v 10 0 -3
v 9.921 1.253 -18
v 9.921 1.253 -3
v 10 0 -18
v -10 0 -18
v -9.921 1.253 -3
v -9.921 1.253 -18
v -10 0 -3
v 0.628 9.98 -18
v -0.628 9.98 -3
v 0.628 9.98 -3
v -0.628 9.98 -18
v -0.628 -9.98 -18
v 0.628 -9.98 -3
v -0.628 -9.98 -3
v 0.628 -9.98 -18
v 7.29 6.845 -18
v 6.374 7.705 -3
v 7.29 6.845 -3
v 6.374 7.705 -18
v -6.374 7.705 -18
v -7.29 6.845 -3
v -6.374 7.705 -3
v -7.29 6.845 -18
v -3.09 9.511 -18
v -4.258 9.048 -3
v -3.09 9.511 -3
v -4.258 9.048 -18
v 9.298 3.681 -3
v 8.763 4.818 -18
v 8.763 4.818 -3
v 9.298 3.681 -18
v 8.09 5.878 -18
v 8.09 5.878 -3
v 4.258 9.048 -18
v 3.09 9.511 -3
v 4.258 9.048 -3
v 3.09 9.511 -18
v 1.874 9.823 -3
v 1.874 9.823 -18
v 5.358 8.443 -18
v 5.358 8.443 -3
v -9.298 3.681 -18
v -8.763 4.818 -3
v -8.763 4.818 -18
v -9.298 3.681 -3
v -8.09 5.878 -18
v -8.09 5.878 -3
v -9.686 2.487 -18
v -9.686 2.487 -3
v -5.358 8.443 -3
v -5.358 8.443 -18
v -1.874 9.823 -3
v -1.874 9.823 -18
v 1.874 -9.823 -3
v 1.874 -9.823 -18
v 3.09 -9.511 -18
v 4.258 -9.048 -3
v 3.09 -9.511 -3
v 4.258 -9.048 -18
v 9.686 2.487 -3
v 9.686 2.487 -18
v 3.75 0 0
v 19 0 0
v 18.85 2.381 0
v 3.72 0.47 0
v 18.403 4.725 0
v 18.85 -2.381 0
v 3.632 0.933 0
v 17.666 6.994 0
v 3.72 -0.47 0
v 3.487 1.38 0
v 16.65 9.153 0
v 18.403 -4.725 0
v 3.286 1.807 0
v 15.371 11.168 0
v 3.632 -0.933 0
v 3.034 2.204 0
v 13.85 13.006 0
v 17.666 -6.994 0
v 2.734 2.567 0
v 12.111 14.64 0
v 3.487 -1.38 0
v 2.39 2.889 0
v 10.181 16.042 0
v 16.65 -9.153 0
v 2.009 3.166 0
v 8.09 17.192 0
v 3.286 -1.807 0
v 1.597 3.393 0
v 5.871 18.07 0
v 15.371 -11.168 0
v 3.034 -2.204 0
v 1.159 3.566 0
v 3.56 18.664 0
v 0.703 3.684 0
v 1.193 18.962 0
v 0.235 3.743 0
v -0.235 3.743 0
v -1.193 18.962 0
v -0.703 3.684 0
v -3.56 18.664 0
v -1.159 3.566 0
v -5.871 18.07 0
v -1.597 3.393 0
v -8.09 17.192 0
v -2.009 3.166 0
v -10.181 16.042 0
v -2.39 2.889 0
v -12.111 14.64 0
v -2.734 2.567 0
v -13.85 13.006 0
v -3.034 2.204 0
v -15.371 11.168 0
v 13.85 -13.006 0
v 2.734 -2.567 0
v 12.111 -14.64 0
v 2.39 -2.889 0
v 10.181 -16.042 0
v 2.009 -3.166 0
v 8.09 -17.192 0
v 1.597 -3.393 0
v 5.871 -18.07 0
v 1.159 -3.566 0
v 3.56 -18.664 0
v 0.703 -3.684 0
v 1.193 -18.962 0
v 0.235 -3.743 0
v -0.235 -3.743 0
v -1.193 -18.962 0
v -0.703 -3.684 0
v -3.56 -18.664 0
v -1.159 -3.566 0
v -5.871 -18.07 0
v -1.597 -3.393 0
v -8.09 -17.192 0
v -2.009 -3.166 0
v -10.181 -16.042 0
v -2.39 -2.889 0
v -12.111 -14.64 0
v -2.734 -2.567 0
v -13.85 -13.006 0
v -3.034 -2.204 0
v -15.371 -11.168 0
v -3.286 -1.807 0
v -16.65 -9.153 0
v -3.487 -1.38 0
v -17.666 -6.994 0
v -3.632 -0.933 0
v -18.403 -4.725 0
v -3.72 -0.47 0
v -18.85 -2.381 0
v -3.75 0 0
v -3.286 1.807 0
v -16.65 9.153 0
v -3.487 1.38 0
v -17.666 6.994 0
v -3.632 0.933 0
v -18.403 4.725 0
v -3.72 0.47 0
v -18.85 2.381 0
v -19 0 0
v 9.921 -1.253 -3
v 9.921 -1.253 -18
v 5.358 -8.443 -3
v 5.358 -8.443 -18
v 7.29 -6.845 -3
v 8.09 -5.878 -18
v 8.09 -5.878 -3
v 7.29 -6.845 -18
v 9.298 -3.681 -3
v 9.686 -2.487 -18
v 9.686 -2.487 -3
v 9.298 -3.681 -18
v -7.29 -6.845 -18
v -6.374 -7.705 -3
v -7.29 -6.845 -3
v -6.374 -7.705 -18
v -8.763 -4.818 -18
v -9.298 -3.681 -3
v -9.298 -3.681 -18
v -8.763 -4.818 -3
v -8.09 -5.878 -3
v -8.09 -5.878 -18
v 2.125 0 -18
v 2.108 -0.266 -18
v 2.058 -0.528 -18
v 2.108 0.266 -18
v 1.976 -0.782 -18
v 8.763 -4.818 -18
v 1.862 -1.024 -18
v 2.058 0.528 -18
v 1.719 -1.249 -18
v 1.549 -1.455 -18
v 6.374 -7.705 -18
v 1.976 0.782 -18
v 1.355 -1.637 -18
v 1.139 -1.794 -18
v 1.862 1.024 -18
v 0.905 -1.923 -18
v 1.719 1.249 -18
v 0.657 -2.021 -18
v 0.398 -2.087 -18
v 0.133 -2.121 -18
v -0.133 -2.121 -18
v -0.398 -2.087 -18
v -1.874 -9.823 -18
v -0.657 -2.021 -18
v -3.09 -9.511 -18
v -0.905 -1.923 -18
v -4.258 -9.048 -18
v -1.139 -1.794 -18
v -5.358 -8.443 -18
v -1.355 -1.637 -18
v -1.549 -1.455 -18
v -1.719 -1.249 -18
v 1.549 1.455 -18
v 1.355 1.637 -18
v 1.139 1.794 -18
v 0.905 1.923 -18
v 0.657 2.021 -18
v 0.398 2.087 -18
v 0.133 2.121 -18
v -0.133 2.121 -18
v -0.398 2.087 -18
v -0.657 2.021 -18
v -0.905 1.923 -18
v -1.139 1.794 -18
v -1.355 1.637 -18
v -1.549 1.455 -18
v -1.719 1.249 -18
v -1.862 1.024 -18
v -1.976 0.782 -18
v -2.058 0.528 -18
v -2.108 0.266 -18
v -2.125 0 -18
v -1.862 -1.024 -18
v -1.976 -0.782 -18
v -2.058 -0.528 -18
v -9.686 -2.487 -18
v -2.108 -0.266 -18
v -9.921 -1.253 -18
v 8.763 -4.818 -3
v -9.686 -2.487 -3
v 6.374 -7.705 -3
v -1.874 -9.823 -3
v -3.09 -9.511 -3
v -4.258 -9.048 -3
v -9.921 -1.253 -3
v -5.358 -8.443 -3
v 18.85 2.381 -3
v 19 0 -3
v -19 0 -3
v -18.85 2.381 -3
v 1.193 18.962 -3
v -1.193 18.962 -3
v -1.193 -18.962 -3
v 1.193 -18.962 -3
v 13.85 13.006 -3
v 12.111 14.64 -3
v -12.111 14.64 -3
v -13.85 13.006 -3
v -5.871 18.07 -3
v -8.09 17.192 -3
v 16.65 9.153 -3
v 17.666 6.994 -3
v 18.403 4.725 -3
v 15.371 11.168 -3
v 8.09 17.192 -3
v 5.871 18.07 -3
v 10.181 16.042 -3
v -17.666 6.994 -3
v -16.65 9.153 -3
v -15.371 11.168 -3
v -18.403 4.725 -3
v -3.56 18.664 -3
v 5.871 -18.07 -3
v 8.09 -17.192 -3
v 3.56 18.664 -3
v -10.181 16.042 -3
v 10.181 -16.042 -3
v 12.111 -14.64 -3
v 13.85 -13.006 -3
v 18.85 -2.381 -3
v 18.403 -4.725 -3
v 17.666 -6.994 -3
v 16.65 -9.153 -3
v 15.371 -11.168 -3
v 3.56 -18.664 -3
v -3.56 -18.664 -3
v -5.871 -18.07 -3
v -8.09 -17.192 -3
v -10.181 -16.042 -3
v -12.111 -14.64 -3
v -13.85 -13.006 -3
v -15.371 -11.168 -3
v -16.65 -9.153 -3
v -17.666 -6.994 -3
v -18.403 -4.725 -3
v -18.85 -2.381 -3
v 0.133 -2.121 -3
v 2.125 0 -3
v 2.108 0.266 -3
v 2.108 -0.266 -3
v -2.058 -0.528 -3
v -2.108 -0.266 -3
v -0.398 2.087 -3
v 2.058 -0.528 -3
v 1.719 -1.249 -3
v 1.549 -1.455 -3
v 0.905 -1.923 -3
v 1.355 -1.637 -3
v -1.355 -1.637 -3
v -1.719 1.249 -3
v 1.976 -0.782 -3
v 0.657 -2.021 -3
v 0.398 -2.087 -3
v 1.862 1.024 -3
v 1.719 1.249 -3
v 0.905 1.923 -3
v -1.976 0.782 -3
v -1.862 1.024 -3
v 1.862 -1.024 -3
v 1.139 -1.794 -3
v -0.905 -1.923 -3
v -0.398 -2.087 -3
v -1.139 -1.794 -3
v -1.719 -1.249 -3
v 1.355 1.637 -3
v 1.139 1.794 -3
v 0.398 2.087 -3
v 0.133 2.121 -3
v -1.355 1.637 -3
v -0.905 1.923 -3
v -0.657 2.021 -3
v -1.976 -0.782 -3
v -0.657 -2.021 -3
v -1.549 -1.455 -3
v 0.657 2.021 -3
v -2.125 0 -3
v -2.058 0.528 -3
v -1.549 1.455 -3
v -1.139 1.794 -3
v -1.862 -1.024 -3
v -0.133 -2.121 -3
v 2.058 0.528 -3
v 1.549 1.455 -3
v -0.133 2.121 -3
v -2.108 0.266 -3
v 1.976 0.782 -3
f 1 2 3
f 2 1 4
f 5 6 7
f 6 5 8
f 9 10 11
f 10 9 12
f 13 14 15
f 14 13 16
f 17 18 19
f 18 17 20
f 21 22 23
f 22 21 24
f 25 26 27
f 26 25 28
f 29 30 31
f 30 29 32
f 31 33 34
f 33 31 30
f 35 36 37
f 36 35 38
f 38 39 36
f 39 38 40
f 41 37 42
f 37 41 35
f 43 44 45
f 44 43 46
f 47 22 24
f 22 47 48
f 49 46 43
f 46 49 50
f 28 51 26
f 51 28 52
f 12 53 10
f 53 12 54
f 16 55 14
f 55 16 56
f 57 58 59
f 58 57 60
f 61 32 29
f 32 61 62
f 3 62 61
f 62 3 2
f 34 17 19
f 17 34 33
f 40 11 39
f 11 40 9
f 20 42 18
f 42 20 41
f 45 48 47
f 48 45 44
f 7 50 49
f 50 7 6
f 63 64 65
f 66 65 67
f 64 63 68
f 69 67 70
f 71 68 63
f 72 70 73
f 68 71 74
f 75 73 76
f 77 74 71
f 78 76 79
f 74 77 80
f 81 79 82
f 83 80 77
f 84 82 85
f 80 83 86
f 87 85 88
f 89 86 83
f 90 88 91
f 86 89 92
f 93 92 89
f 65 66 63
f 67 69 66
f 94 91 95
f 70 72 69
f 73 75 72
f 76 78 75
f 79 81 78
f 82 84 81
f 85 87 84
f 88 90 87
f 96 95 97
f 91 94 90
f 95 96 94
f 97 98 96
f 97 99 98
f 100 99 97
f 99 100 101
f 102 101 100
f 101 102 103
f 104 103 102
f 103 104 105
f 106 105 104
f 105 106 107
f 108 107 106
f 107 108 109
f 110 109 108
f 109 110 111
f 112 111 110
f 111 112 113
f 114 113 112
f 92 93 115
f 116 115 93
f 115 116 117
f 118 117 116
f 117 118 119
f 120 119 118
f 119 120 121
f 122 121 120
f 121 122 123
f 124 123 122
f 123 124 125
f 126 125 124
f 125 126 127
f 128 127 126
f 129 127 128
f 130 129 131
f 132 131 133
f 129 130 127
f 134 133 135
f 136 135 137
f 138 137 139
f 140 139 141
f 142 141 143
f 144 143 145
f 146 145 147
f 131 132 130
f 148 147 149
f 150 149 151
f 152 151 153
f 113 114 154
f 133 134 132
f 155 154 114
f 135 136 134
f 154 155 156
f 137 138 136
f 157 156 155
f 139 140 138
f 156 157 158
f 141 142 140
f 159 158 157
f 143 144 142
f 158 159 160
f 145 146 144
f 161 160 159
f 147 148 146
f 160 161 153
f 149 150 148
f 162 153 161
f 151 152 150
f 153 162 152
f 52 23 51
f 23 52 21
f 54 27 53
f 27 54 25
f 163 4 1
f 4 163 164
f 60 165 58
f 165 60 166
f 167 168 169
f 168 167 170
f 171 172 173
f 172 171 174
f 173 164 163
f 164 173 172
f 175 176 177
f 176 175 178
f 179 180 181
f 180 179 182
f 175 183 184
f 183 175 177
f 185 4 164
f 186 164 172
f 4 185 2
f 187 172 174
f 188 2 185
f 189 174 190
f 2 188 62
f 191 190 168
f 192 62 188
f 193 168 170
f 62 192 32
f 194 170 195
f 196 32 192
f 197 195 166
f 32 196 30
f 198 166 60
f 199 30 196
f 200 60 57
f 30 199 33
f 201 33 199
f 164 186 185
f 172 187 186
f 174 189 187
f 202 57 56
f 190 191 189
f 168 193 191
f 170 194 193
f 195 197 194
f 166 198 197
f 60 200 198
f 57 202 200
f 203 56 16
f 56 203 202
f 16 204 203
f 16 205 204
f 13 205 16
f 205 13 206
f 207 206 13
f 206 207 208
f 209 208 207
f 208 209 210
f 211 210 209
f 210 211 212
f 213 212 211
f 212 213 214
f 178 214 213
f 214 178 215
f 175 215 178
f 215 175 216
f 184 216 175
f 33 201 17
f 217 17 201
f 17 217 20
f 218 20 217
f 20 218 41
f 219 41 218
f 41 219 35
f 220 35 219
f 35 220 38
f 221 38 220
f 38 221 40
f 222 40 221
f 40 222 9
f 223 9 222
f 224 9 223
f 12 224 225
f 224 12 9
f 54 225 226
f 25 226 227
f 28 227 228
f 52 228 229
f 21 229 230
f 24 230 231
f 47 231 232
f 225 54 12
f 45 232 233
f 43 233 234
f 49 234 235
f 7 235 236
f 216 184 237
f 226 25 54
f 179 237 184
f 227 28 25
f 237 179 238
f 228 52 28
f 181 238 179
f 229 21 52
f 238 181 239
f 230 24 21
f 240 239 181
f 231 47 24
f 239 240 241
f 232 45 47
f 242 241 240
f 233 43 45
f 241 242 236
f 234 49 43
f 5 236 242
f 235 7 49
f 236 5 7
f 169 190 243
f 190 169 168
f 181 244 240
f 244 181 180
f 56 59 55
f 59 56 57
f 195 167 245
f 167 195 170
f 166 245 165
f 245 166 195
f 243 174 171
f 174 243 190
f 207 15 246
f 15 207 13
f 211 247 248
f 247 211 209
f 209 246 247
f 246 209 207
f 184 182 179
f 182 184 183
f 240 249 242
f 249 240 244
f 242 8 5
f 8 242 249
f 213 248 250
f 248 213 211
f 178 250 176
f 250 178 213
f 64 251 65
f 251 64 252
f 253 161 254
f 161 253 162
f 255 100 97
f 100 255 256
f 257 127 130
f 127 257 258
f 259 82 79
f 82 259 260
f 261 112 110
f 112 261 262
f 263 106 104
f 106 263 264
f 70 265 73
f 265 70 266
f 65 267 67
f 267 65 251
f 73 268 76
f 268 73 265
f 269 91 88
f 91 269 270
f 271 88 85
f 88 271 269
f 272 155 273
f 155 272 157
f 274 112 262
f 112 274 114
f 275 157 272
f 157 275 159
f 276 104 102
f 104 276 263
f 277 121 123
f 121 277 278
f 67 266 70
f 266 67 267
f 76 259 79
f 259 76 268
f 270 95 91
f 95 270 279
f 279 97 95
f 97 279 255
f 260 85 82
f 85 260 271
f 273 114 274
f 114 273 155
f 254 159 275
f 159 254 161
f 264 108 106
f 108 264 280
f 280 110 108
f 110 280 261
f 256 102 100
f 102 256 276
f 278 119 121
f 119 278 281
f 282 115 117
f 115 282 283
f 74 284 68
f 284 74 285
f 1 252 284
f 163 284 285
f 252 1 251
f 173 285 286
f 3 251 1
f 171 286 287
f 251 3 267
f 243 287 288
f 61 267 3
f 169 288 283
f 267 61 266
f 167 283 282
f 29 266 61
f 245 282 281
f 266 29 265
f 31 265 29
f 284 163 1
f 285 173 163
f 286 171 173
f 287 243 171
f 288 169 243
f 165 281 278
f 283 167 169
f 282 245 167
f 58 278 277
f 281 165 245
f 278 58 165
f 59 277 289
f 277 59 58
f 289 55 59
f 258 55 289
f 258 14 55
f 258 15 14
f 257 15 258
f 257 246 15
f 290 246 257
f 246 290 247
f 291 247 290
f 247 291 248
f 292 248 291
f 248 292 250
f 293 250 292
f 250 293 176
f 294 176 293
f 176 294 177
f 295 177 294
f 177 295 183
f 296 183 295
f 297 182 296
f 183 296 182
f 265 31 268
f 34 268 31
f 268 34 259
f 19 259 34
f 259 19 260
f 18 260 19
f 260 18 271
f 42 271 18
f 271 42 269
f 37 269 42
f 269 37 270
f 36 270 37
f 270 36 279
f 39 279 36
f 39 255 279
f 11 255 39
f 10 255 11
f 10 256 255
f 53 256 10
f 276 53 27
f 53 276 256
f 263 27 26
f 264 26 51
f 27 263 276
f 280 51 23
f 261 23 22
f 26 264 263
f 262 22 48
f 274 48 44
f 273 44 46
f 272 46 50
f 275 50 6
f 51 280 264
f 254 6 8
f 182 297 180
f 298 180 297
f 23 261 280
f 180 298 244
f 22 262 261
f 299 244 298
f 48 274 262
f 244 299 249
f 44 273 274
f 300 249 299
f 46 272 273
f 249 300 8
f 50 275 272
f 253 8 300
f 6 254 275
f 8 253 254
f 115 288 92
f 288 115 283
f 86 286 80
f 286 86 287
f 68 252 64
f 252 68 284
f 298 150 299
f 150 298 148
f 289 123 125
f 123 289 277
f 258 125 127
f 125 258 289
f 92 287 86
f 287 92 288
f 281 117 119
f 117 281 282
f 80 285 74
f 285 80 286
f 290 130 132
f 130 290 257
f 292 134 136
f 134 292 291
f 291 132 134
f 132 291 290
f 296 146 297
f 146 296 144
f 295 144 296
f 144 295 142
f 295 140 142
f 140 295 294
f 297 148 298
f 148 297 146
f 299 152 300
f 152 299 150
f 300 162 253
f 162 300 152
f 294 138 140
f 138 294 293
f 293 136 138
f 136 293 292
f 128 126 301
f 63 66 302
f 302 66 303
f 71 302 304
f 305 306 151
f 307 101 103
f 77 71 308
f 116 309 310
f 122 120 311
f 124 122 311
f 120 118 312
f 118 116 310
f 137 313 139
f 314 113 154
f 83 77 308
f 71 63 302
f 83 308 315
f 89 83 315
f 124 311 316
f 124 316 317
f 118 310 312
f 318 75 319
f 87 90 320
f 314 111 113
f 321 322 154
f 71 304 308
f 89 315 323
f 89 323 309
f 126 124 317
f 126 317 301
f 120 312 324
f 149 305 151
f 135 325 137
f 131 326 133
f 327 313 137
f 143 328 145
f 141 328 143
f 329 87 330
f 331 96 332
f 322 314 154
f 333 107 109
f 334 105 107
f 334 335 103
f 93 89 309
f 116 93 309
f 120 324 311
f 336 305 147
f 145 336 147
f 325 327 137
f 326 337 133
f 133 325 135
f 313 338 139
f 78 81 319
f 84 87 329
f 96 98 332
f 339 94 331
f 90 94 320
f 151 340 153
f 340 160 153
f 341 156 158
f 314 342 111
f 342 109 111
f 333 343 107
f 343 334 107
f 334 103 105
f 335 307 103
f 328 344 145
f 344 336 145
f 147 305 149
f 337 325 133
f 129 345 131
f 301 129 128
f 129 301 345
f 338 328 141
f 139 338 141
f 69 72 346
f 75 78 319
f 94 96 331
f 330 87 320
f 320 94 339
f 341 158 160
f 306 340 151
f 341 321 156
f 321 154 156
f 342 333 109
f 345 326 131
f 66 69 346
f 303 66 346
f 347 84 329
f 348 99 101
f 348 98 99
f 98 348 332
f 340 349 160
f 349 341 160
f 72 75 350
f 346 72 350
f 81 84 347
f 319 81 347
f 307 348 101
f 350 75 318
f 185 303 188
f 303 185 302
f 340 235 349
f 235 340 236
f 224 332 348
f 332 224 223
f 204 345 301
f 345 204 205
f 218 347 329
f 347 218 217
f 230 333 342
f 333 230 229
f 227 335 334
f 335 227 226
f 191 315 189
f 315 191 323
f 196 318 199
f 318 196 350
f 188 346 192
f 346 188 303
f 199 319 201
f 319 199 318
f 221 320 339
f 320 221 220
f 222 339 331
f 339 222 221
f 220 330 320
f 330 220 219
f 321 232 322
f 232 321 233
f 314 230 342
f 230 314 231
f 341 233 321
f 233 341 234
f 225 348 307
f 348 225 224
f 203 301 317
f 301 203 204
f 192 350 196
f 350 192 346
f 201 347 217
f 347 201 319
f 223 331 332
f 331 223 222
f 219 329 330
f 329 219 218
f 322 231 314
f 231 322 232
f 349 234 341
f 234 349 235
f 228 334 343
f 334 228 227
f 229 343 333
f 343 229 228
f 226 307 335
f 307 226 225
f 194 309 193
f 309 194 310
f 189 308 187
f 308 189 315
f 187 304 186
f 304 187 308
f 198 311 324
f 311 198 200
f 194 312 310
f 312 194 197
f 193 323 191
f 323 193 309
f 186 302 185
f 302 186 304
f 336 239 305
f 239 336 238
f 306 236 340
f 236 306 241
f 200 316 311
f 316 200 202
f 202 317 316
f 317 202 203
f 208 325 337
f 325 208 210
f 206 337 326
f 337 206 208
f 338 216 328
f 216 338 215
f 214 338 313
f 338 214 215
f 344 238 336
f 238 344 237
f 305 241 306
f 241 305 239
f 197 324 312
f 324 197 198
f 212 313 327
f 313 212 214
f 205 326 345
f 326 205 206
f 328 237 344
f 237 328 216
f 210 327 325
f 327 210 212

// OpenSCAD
$fn = 50;


difference() {
	union() {
		translate(v = [0, 0, -18.0000000000]) {
			cylinder(h = 18, r = 10.0000000000);
		}
		translate(v = [0, 0, -3.0000000000]) {
			cylinder(h = 3, r = 19.0000000000);
		}
	}
	union() {
		translate(v = [0, 0, 0]) {
			rotate(a = [0, 0, 0]) {
				difference() {
					union() {
						#translate(v = [0, 0, -18.0000000000]) {
							cylinder(h = 18, r = 2.0000000000);
						}
						#translate(v = [0, 0, -3]) {
							cylinder(h = 3, r1 = 2.1250000000, r2 = 3.7500000000);
						}
						#translate(v = [0, 0, -18.0000000000]) {
							cylinder(h = 18, r = 2.1250000000);
						}
						#translate(v = [0, 0, -18.0000000000]) {
							cylinder(h = 18, r = 2.0000000000);
						}
					}
					union();
				}
			}
		}
	}
}
